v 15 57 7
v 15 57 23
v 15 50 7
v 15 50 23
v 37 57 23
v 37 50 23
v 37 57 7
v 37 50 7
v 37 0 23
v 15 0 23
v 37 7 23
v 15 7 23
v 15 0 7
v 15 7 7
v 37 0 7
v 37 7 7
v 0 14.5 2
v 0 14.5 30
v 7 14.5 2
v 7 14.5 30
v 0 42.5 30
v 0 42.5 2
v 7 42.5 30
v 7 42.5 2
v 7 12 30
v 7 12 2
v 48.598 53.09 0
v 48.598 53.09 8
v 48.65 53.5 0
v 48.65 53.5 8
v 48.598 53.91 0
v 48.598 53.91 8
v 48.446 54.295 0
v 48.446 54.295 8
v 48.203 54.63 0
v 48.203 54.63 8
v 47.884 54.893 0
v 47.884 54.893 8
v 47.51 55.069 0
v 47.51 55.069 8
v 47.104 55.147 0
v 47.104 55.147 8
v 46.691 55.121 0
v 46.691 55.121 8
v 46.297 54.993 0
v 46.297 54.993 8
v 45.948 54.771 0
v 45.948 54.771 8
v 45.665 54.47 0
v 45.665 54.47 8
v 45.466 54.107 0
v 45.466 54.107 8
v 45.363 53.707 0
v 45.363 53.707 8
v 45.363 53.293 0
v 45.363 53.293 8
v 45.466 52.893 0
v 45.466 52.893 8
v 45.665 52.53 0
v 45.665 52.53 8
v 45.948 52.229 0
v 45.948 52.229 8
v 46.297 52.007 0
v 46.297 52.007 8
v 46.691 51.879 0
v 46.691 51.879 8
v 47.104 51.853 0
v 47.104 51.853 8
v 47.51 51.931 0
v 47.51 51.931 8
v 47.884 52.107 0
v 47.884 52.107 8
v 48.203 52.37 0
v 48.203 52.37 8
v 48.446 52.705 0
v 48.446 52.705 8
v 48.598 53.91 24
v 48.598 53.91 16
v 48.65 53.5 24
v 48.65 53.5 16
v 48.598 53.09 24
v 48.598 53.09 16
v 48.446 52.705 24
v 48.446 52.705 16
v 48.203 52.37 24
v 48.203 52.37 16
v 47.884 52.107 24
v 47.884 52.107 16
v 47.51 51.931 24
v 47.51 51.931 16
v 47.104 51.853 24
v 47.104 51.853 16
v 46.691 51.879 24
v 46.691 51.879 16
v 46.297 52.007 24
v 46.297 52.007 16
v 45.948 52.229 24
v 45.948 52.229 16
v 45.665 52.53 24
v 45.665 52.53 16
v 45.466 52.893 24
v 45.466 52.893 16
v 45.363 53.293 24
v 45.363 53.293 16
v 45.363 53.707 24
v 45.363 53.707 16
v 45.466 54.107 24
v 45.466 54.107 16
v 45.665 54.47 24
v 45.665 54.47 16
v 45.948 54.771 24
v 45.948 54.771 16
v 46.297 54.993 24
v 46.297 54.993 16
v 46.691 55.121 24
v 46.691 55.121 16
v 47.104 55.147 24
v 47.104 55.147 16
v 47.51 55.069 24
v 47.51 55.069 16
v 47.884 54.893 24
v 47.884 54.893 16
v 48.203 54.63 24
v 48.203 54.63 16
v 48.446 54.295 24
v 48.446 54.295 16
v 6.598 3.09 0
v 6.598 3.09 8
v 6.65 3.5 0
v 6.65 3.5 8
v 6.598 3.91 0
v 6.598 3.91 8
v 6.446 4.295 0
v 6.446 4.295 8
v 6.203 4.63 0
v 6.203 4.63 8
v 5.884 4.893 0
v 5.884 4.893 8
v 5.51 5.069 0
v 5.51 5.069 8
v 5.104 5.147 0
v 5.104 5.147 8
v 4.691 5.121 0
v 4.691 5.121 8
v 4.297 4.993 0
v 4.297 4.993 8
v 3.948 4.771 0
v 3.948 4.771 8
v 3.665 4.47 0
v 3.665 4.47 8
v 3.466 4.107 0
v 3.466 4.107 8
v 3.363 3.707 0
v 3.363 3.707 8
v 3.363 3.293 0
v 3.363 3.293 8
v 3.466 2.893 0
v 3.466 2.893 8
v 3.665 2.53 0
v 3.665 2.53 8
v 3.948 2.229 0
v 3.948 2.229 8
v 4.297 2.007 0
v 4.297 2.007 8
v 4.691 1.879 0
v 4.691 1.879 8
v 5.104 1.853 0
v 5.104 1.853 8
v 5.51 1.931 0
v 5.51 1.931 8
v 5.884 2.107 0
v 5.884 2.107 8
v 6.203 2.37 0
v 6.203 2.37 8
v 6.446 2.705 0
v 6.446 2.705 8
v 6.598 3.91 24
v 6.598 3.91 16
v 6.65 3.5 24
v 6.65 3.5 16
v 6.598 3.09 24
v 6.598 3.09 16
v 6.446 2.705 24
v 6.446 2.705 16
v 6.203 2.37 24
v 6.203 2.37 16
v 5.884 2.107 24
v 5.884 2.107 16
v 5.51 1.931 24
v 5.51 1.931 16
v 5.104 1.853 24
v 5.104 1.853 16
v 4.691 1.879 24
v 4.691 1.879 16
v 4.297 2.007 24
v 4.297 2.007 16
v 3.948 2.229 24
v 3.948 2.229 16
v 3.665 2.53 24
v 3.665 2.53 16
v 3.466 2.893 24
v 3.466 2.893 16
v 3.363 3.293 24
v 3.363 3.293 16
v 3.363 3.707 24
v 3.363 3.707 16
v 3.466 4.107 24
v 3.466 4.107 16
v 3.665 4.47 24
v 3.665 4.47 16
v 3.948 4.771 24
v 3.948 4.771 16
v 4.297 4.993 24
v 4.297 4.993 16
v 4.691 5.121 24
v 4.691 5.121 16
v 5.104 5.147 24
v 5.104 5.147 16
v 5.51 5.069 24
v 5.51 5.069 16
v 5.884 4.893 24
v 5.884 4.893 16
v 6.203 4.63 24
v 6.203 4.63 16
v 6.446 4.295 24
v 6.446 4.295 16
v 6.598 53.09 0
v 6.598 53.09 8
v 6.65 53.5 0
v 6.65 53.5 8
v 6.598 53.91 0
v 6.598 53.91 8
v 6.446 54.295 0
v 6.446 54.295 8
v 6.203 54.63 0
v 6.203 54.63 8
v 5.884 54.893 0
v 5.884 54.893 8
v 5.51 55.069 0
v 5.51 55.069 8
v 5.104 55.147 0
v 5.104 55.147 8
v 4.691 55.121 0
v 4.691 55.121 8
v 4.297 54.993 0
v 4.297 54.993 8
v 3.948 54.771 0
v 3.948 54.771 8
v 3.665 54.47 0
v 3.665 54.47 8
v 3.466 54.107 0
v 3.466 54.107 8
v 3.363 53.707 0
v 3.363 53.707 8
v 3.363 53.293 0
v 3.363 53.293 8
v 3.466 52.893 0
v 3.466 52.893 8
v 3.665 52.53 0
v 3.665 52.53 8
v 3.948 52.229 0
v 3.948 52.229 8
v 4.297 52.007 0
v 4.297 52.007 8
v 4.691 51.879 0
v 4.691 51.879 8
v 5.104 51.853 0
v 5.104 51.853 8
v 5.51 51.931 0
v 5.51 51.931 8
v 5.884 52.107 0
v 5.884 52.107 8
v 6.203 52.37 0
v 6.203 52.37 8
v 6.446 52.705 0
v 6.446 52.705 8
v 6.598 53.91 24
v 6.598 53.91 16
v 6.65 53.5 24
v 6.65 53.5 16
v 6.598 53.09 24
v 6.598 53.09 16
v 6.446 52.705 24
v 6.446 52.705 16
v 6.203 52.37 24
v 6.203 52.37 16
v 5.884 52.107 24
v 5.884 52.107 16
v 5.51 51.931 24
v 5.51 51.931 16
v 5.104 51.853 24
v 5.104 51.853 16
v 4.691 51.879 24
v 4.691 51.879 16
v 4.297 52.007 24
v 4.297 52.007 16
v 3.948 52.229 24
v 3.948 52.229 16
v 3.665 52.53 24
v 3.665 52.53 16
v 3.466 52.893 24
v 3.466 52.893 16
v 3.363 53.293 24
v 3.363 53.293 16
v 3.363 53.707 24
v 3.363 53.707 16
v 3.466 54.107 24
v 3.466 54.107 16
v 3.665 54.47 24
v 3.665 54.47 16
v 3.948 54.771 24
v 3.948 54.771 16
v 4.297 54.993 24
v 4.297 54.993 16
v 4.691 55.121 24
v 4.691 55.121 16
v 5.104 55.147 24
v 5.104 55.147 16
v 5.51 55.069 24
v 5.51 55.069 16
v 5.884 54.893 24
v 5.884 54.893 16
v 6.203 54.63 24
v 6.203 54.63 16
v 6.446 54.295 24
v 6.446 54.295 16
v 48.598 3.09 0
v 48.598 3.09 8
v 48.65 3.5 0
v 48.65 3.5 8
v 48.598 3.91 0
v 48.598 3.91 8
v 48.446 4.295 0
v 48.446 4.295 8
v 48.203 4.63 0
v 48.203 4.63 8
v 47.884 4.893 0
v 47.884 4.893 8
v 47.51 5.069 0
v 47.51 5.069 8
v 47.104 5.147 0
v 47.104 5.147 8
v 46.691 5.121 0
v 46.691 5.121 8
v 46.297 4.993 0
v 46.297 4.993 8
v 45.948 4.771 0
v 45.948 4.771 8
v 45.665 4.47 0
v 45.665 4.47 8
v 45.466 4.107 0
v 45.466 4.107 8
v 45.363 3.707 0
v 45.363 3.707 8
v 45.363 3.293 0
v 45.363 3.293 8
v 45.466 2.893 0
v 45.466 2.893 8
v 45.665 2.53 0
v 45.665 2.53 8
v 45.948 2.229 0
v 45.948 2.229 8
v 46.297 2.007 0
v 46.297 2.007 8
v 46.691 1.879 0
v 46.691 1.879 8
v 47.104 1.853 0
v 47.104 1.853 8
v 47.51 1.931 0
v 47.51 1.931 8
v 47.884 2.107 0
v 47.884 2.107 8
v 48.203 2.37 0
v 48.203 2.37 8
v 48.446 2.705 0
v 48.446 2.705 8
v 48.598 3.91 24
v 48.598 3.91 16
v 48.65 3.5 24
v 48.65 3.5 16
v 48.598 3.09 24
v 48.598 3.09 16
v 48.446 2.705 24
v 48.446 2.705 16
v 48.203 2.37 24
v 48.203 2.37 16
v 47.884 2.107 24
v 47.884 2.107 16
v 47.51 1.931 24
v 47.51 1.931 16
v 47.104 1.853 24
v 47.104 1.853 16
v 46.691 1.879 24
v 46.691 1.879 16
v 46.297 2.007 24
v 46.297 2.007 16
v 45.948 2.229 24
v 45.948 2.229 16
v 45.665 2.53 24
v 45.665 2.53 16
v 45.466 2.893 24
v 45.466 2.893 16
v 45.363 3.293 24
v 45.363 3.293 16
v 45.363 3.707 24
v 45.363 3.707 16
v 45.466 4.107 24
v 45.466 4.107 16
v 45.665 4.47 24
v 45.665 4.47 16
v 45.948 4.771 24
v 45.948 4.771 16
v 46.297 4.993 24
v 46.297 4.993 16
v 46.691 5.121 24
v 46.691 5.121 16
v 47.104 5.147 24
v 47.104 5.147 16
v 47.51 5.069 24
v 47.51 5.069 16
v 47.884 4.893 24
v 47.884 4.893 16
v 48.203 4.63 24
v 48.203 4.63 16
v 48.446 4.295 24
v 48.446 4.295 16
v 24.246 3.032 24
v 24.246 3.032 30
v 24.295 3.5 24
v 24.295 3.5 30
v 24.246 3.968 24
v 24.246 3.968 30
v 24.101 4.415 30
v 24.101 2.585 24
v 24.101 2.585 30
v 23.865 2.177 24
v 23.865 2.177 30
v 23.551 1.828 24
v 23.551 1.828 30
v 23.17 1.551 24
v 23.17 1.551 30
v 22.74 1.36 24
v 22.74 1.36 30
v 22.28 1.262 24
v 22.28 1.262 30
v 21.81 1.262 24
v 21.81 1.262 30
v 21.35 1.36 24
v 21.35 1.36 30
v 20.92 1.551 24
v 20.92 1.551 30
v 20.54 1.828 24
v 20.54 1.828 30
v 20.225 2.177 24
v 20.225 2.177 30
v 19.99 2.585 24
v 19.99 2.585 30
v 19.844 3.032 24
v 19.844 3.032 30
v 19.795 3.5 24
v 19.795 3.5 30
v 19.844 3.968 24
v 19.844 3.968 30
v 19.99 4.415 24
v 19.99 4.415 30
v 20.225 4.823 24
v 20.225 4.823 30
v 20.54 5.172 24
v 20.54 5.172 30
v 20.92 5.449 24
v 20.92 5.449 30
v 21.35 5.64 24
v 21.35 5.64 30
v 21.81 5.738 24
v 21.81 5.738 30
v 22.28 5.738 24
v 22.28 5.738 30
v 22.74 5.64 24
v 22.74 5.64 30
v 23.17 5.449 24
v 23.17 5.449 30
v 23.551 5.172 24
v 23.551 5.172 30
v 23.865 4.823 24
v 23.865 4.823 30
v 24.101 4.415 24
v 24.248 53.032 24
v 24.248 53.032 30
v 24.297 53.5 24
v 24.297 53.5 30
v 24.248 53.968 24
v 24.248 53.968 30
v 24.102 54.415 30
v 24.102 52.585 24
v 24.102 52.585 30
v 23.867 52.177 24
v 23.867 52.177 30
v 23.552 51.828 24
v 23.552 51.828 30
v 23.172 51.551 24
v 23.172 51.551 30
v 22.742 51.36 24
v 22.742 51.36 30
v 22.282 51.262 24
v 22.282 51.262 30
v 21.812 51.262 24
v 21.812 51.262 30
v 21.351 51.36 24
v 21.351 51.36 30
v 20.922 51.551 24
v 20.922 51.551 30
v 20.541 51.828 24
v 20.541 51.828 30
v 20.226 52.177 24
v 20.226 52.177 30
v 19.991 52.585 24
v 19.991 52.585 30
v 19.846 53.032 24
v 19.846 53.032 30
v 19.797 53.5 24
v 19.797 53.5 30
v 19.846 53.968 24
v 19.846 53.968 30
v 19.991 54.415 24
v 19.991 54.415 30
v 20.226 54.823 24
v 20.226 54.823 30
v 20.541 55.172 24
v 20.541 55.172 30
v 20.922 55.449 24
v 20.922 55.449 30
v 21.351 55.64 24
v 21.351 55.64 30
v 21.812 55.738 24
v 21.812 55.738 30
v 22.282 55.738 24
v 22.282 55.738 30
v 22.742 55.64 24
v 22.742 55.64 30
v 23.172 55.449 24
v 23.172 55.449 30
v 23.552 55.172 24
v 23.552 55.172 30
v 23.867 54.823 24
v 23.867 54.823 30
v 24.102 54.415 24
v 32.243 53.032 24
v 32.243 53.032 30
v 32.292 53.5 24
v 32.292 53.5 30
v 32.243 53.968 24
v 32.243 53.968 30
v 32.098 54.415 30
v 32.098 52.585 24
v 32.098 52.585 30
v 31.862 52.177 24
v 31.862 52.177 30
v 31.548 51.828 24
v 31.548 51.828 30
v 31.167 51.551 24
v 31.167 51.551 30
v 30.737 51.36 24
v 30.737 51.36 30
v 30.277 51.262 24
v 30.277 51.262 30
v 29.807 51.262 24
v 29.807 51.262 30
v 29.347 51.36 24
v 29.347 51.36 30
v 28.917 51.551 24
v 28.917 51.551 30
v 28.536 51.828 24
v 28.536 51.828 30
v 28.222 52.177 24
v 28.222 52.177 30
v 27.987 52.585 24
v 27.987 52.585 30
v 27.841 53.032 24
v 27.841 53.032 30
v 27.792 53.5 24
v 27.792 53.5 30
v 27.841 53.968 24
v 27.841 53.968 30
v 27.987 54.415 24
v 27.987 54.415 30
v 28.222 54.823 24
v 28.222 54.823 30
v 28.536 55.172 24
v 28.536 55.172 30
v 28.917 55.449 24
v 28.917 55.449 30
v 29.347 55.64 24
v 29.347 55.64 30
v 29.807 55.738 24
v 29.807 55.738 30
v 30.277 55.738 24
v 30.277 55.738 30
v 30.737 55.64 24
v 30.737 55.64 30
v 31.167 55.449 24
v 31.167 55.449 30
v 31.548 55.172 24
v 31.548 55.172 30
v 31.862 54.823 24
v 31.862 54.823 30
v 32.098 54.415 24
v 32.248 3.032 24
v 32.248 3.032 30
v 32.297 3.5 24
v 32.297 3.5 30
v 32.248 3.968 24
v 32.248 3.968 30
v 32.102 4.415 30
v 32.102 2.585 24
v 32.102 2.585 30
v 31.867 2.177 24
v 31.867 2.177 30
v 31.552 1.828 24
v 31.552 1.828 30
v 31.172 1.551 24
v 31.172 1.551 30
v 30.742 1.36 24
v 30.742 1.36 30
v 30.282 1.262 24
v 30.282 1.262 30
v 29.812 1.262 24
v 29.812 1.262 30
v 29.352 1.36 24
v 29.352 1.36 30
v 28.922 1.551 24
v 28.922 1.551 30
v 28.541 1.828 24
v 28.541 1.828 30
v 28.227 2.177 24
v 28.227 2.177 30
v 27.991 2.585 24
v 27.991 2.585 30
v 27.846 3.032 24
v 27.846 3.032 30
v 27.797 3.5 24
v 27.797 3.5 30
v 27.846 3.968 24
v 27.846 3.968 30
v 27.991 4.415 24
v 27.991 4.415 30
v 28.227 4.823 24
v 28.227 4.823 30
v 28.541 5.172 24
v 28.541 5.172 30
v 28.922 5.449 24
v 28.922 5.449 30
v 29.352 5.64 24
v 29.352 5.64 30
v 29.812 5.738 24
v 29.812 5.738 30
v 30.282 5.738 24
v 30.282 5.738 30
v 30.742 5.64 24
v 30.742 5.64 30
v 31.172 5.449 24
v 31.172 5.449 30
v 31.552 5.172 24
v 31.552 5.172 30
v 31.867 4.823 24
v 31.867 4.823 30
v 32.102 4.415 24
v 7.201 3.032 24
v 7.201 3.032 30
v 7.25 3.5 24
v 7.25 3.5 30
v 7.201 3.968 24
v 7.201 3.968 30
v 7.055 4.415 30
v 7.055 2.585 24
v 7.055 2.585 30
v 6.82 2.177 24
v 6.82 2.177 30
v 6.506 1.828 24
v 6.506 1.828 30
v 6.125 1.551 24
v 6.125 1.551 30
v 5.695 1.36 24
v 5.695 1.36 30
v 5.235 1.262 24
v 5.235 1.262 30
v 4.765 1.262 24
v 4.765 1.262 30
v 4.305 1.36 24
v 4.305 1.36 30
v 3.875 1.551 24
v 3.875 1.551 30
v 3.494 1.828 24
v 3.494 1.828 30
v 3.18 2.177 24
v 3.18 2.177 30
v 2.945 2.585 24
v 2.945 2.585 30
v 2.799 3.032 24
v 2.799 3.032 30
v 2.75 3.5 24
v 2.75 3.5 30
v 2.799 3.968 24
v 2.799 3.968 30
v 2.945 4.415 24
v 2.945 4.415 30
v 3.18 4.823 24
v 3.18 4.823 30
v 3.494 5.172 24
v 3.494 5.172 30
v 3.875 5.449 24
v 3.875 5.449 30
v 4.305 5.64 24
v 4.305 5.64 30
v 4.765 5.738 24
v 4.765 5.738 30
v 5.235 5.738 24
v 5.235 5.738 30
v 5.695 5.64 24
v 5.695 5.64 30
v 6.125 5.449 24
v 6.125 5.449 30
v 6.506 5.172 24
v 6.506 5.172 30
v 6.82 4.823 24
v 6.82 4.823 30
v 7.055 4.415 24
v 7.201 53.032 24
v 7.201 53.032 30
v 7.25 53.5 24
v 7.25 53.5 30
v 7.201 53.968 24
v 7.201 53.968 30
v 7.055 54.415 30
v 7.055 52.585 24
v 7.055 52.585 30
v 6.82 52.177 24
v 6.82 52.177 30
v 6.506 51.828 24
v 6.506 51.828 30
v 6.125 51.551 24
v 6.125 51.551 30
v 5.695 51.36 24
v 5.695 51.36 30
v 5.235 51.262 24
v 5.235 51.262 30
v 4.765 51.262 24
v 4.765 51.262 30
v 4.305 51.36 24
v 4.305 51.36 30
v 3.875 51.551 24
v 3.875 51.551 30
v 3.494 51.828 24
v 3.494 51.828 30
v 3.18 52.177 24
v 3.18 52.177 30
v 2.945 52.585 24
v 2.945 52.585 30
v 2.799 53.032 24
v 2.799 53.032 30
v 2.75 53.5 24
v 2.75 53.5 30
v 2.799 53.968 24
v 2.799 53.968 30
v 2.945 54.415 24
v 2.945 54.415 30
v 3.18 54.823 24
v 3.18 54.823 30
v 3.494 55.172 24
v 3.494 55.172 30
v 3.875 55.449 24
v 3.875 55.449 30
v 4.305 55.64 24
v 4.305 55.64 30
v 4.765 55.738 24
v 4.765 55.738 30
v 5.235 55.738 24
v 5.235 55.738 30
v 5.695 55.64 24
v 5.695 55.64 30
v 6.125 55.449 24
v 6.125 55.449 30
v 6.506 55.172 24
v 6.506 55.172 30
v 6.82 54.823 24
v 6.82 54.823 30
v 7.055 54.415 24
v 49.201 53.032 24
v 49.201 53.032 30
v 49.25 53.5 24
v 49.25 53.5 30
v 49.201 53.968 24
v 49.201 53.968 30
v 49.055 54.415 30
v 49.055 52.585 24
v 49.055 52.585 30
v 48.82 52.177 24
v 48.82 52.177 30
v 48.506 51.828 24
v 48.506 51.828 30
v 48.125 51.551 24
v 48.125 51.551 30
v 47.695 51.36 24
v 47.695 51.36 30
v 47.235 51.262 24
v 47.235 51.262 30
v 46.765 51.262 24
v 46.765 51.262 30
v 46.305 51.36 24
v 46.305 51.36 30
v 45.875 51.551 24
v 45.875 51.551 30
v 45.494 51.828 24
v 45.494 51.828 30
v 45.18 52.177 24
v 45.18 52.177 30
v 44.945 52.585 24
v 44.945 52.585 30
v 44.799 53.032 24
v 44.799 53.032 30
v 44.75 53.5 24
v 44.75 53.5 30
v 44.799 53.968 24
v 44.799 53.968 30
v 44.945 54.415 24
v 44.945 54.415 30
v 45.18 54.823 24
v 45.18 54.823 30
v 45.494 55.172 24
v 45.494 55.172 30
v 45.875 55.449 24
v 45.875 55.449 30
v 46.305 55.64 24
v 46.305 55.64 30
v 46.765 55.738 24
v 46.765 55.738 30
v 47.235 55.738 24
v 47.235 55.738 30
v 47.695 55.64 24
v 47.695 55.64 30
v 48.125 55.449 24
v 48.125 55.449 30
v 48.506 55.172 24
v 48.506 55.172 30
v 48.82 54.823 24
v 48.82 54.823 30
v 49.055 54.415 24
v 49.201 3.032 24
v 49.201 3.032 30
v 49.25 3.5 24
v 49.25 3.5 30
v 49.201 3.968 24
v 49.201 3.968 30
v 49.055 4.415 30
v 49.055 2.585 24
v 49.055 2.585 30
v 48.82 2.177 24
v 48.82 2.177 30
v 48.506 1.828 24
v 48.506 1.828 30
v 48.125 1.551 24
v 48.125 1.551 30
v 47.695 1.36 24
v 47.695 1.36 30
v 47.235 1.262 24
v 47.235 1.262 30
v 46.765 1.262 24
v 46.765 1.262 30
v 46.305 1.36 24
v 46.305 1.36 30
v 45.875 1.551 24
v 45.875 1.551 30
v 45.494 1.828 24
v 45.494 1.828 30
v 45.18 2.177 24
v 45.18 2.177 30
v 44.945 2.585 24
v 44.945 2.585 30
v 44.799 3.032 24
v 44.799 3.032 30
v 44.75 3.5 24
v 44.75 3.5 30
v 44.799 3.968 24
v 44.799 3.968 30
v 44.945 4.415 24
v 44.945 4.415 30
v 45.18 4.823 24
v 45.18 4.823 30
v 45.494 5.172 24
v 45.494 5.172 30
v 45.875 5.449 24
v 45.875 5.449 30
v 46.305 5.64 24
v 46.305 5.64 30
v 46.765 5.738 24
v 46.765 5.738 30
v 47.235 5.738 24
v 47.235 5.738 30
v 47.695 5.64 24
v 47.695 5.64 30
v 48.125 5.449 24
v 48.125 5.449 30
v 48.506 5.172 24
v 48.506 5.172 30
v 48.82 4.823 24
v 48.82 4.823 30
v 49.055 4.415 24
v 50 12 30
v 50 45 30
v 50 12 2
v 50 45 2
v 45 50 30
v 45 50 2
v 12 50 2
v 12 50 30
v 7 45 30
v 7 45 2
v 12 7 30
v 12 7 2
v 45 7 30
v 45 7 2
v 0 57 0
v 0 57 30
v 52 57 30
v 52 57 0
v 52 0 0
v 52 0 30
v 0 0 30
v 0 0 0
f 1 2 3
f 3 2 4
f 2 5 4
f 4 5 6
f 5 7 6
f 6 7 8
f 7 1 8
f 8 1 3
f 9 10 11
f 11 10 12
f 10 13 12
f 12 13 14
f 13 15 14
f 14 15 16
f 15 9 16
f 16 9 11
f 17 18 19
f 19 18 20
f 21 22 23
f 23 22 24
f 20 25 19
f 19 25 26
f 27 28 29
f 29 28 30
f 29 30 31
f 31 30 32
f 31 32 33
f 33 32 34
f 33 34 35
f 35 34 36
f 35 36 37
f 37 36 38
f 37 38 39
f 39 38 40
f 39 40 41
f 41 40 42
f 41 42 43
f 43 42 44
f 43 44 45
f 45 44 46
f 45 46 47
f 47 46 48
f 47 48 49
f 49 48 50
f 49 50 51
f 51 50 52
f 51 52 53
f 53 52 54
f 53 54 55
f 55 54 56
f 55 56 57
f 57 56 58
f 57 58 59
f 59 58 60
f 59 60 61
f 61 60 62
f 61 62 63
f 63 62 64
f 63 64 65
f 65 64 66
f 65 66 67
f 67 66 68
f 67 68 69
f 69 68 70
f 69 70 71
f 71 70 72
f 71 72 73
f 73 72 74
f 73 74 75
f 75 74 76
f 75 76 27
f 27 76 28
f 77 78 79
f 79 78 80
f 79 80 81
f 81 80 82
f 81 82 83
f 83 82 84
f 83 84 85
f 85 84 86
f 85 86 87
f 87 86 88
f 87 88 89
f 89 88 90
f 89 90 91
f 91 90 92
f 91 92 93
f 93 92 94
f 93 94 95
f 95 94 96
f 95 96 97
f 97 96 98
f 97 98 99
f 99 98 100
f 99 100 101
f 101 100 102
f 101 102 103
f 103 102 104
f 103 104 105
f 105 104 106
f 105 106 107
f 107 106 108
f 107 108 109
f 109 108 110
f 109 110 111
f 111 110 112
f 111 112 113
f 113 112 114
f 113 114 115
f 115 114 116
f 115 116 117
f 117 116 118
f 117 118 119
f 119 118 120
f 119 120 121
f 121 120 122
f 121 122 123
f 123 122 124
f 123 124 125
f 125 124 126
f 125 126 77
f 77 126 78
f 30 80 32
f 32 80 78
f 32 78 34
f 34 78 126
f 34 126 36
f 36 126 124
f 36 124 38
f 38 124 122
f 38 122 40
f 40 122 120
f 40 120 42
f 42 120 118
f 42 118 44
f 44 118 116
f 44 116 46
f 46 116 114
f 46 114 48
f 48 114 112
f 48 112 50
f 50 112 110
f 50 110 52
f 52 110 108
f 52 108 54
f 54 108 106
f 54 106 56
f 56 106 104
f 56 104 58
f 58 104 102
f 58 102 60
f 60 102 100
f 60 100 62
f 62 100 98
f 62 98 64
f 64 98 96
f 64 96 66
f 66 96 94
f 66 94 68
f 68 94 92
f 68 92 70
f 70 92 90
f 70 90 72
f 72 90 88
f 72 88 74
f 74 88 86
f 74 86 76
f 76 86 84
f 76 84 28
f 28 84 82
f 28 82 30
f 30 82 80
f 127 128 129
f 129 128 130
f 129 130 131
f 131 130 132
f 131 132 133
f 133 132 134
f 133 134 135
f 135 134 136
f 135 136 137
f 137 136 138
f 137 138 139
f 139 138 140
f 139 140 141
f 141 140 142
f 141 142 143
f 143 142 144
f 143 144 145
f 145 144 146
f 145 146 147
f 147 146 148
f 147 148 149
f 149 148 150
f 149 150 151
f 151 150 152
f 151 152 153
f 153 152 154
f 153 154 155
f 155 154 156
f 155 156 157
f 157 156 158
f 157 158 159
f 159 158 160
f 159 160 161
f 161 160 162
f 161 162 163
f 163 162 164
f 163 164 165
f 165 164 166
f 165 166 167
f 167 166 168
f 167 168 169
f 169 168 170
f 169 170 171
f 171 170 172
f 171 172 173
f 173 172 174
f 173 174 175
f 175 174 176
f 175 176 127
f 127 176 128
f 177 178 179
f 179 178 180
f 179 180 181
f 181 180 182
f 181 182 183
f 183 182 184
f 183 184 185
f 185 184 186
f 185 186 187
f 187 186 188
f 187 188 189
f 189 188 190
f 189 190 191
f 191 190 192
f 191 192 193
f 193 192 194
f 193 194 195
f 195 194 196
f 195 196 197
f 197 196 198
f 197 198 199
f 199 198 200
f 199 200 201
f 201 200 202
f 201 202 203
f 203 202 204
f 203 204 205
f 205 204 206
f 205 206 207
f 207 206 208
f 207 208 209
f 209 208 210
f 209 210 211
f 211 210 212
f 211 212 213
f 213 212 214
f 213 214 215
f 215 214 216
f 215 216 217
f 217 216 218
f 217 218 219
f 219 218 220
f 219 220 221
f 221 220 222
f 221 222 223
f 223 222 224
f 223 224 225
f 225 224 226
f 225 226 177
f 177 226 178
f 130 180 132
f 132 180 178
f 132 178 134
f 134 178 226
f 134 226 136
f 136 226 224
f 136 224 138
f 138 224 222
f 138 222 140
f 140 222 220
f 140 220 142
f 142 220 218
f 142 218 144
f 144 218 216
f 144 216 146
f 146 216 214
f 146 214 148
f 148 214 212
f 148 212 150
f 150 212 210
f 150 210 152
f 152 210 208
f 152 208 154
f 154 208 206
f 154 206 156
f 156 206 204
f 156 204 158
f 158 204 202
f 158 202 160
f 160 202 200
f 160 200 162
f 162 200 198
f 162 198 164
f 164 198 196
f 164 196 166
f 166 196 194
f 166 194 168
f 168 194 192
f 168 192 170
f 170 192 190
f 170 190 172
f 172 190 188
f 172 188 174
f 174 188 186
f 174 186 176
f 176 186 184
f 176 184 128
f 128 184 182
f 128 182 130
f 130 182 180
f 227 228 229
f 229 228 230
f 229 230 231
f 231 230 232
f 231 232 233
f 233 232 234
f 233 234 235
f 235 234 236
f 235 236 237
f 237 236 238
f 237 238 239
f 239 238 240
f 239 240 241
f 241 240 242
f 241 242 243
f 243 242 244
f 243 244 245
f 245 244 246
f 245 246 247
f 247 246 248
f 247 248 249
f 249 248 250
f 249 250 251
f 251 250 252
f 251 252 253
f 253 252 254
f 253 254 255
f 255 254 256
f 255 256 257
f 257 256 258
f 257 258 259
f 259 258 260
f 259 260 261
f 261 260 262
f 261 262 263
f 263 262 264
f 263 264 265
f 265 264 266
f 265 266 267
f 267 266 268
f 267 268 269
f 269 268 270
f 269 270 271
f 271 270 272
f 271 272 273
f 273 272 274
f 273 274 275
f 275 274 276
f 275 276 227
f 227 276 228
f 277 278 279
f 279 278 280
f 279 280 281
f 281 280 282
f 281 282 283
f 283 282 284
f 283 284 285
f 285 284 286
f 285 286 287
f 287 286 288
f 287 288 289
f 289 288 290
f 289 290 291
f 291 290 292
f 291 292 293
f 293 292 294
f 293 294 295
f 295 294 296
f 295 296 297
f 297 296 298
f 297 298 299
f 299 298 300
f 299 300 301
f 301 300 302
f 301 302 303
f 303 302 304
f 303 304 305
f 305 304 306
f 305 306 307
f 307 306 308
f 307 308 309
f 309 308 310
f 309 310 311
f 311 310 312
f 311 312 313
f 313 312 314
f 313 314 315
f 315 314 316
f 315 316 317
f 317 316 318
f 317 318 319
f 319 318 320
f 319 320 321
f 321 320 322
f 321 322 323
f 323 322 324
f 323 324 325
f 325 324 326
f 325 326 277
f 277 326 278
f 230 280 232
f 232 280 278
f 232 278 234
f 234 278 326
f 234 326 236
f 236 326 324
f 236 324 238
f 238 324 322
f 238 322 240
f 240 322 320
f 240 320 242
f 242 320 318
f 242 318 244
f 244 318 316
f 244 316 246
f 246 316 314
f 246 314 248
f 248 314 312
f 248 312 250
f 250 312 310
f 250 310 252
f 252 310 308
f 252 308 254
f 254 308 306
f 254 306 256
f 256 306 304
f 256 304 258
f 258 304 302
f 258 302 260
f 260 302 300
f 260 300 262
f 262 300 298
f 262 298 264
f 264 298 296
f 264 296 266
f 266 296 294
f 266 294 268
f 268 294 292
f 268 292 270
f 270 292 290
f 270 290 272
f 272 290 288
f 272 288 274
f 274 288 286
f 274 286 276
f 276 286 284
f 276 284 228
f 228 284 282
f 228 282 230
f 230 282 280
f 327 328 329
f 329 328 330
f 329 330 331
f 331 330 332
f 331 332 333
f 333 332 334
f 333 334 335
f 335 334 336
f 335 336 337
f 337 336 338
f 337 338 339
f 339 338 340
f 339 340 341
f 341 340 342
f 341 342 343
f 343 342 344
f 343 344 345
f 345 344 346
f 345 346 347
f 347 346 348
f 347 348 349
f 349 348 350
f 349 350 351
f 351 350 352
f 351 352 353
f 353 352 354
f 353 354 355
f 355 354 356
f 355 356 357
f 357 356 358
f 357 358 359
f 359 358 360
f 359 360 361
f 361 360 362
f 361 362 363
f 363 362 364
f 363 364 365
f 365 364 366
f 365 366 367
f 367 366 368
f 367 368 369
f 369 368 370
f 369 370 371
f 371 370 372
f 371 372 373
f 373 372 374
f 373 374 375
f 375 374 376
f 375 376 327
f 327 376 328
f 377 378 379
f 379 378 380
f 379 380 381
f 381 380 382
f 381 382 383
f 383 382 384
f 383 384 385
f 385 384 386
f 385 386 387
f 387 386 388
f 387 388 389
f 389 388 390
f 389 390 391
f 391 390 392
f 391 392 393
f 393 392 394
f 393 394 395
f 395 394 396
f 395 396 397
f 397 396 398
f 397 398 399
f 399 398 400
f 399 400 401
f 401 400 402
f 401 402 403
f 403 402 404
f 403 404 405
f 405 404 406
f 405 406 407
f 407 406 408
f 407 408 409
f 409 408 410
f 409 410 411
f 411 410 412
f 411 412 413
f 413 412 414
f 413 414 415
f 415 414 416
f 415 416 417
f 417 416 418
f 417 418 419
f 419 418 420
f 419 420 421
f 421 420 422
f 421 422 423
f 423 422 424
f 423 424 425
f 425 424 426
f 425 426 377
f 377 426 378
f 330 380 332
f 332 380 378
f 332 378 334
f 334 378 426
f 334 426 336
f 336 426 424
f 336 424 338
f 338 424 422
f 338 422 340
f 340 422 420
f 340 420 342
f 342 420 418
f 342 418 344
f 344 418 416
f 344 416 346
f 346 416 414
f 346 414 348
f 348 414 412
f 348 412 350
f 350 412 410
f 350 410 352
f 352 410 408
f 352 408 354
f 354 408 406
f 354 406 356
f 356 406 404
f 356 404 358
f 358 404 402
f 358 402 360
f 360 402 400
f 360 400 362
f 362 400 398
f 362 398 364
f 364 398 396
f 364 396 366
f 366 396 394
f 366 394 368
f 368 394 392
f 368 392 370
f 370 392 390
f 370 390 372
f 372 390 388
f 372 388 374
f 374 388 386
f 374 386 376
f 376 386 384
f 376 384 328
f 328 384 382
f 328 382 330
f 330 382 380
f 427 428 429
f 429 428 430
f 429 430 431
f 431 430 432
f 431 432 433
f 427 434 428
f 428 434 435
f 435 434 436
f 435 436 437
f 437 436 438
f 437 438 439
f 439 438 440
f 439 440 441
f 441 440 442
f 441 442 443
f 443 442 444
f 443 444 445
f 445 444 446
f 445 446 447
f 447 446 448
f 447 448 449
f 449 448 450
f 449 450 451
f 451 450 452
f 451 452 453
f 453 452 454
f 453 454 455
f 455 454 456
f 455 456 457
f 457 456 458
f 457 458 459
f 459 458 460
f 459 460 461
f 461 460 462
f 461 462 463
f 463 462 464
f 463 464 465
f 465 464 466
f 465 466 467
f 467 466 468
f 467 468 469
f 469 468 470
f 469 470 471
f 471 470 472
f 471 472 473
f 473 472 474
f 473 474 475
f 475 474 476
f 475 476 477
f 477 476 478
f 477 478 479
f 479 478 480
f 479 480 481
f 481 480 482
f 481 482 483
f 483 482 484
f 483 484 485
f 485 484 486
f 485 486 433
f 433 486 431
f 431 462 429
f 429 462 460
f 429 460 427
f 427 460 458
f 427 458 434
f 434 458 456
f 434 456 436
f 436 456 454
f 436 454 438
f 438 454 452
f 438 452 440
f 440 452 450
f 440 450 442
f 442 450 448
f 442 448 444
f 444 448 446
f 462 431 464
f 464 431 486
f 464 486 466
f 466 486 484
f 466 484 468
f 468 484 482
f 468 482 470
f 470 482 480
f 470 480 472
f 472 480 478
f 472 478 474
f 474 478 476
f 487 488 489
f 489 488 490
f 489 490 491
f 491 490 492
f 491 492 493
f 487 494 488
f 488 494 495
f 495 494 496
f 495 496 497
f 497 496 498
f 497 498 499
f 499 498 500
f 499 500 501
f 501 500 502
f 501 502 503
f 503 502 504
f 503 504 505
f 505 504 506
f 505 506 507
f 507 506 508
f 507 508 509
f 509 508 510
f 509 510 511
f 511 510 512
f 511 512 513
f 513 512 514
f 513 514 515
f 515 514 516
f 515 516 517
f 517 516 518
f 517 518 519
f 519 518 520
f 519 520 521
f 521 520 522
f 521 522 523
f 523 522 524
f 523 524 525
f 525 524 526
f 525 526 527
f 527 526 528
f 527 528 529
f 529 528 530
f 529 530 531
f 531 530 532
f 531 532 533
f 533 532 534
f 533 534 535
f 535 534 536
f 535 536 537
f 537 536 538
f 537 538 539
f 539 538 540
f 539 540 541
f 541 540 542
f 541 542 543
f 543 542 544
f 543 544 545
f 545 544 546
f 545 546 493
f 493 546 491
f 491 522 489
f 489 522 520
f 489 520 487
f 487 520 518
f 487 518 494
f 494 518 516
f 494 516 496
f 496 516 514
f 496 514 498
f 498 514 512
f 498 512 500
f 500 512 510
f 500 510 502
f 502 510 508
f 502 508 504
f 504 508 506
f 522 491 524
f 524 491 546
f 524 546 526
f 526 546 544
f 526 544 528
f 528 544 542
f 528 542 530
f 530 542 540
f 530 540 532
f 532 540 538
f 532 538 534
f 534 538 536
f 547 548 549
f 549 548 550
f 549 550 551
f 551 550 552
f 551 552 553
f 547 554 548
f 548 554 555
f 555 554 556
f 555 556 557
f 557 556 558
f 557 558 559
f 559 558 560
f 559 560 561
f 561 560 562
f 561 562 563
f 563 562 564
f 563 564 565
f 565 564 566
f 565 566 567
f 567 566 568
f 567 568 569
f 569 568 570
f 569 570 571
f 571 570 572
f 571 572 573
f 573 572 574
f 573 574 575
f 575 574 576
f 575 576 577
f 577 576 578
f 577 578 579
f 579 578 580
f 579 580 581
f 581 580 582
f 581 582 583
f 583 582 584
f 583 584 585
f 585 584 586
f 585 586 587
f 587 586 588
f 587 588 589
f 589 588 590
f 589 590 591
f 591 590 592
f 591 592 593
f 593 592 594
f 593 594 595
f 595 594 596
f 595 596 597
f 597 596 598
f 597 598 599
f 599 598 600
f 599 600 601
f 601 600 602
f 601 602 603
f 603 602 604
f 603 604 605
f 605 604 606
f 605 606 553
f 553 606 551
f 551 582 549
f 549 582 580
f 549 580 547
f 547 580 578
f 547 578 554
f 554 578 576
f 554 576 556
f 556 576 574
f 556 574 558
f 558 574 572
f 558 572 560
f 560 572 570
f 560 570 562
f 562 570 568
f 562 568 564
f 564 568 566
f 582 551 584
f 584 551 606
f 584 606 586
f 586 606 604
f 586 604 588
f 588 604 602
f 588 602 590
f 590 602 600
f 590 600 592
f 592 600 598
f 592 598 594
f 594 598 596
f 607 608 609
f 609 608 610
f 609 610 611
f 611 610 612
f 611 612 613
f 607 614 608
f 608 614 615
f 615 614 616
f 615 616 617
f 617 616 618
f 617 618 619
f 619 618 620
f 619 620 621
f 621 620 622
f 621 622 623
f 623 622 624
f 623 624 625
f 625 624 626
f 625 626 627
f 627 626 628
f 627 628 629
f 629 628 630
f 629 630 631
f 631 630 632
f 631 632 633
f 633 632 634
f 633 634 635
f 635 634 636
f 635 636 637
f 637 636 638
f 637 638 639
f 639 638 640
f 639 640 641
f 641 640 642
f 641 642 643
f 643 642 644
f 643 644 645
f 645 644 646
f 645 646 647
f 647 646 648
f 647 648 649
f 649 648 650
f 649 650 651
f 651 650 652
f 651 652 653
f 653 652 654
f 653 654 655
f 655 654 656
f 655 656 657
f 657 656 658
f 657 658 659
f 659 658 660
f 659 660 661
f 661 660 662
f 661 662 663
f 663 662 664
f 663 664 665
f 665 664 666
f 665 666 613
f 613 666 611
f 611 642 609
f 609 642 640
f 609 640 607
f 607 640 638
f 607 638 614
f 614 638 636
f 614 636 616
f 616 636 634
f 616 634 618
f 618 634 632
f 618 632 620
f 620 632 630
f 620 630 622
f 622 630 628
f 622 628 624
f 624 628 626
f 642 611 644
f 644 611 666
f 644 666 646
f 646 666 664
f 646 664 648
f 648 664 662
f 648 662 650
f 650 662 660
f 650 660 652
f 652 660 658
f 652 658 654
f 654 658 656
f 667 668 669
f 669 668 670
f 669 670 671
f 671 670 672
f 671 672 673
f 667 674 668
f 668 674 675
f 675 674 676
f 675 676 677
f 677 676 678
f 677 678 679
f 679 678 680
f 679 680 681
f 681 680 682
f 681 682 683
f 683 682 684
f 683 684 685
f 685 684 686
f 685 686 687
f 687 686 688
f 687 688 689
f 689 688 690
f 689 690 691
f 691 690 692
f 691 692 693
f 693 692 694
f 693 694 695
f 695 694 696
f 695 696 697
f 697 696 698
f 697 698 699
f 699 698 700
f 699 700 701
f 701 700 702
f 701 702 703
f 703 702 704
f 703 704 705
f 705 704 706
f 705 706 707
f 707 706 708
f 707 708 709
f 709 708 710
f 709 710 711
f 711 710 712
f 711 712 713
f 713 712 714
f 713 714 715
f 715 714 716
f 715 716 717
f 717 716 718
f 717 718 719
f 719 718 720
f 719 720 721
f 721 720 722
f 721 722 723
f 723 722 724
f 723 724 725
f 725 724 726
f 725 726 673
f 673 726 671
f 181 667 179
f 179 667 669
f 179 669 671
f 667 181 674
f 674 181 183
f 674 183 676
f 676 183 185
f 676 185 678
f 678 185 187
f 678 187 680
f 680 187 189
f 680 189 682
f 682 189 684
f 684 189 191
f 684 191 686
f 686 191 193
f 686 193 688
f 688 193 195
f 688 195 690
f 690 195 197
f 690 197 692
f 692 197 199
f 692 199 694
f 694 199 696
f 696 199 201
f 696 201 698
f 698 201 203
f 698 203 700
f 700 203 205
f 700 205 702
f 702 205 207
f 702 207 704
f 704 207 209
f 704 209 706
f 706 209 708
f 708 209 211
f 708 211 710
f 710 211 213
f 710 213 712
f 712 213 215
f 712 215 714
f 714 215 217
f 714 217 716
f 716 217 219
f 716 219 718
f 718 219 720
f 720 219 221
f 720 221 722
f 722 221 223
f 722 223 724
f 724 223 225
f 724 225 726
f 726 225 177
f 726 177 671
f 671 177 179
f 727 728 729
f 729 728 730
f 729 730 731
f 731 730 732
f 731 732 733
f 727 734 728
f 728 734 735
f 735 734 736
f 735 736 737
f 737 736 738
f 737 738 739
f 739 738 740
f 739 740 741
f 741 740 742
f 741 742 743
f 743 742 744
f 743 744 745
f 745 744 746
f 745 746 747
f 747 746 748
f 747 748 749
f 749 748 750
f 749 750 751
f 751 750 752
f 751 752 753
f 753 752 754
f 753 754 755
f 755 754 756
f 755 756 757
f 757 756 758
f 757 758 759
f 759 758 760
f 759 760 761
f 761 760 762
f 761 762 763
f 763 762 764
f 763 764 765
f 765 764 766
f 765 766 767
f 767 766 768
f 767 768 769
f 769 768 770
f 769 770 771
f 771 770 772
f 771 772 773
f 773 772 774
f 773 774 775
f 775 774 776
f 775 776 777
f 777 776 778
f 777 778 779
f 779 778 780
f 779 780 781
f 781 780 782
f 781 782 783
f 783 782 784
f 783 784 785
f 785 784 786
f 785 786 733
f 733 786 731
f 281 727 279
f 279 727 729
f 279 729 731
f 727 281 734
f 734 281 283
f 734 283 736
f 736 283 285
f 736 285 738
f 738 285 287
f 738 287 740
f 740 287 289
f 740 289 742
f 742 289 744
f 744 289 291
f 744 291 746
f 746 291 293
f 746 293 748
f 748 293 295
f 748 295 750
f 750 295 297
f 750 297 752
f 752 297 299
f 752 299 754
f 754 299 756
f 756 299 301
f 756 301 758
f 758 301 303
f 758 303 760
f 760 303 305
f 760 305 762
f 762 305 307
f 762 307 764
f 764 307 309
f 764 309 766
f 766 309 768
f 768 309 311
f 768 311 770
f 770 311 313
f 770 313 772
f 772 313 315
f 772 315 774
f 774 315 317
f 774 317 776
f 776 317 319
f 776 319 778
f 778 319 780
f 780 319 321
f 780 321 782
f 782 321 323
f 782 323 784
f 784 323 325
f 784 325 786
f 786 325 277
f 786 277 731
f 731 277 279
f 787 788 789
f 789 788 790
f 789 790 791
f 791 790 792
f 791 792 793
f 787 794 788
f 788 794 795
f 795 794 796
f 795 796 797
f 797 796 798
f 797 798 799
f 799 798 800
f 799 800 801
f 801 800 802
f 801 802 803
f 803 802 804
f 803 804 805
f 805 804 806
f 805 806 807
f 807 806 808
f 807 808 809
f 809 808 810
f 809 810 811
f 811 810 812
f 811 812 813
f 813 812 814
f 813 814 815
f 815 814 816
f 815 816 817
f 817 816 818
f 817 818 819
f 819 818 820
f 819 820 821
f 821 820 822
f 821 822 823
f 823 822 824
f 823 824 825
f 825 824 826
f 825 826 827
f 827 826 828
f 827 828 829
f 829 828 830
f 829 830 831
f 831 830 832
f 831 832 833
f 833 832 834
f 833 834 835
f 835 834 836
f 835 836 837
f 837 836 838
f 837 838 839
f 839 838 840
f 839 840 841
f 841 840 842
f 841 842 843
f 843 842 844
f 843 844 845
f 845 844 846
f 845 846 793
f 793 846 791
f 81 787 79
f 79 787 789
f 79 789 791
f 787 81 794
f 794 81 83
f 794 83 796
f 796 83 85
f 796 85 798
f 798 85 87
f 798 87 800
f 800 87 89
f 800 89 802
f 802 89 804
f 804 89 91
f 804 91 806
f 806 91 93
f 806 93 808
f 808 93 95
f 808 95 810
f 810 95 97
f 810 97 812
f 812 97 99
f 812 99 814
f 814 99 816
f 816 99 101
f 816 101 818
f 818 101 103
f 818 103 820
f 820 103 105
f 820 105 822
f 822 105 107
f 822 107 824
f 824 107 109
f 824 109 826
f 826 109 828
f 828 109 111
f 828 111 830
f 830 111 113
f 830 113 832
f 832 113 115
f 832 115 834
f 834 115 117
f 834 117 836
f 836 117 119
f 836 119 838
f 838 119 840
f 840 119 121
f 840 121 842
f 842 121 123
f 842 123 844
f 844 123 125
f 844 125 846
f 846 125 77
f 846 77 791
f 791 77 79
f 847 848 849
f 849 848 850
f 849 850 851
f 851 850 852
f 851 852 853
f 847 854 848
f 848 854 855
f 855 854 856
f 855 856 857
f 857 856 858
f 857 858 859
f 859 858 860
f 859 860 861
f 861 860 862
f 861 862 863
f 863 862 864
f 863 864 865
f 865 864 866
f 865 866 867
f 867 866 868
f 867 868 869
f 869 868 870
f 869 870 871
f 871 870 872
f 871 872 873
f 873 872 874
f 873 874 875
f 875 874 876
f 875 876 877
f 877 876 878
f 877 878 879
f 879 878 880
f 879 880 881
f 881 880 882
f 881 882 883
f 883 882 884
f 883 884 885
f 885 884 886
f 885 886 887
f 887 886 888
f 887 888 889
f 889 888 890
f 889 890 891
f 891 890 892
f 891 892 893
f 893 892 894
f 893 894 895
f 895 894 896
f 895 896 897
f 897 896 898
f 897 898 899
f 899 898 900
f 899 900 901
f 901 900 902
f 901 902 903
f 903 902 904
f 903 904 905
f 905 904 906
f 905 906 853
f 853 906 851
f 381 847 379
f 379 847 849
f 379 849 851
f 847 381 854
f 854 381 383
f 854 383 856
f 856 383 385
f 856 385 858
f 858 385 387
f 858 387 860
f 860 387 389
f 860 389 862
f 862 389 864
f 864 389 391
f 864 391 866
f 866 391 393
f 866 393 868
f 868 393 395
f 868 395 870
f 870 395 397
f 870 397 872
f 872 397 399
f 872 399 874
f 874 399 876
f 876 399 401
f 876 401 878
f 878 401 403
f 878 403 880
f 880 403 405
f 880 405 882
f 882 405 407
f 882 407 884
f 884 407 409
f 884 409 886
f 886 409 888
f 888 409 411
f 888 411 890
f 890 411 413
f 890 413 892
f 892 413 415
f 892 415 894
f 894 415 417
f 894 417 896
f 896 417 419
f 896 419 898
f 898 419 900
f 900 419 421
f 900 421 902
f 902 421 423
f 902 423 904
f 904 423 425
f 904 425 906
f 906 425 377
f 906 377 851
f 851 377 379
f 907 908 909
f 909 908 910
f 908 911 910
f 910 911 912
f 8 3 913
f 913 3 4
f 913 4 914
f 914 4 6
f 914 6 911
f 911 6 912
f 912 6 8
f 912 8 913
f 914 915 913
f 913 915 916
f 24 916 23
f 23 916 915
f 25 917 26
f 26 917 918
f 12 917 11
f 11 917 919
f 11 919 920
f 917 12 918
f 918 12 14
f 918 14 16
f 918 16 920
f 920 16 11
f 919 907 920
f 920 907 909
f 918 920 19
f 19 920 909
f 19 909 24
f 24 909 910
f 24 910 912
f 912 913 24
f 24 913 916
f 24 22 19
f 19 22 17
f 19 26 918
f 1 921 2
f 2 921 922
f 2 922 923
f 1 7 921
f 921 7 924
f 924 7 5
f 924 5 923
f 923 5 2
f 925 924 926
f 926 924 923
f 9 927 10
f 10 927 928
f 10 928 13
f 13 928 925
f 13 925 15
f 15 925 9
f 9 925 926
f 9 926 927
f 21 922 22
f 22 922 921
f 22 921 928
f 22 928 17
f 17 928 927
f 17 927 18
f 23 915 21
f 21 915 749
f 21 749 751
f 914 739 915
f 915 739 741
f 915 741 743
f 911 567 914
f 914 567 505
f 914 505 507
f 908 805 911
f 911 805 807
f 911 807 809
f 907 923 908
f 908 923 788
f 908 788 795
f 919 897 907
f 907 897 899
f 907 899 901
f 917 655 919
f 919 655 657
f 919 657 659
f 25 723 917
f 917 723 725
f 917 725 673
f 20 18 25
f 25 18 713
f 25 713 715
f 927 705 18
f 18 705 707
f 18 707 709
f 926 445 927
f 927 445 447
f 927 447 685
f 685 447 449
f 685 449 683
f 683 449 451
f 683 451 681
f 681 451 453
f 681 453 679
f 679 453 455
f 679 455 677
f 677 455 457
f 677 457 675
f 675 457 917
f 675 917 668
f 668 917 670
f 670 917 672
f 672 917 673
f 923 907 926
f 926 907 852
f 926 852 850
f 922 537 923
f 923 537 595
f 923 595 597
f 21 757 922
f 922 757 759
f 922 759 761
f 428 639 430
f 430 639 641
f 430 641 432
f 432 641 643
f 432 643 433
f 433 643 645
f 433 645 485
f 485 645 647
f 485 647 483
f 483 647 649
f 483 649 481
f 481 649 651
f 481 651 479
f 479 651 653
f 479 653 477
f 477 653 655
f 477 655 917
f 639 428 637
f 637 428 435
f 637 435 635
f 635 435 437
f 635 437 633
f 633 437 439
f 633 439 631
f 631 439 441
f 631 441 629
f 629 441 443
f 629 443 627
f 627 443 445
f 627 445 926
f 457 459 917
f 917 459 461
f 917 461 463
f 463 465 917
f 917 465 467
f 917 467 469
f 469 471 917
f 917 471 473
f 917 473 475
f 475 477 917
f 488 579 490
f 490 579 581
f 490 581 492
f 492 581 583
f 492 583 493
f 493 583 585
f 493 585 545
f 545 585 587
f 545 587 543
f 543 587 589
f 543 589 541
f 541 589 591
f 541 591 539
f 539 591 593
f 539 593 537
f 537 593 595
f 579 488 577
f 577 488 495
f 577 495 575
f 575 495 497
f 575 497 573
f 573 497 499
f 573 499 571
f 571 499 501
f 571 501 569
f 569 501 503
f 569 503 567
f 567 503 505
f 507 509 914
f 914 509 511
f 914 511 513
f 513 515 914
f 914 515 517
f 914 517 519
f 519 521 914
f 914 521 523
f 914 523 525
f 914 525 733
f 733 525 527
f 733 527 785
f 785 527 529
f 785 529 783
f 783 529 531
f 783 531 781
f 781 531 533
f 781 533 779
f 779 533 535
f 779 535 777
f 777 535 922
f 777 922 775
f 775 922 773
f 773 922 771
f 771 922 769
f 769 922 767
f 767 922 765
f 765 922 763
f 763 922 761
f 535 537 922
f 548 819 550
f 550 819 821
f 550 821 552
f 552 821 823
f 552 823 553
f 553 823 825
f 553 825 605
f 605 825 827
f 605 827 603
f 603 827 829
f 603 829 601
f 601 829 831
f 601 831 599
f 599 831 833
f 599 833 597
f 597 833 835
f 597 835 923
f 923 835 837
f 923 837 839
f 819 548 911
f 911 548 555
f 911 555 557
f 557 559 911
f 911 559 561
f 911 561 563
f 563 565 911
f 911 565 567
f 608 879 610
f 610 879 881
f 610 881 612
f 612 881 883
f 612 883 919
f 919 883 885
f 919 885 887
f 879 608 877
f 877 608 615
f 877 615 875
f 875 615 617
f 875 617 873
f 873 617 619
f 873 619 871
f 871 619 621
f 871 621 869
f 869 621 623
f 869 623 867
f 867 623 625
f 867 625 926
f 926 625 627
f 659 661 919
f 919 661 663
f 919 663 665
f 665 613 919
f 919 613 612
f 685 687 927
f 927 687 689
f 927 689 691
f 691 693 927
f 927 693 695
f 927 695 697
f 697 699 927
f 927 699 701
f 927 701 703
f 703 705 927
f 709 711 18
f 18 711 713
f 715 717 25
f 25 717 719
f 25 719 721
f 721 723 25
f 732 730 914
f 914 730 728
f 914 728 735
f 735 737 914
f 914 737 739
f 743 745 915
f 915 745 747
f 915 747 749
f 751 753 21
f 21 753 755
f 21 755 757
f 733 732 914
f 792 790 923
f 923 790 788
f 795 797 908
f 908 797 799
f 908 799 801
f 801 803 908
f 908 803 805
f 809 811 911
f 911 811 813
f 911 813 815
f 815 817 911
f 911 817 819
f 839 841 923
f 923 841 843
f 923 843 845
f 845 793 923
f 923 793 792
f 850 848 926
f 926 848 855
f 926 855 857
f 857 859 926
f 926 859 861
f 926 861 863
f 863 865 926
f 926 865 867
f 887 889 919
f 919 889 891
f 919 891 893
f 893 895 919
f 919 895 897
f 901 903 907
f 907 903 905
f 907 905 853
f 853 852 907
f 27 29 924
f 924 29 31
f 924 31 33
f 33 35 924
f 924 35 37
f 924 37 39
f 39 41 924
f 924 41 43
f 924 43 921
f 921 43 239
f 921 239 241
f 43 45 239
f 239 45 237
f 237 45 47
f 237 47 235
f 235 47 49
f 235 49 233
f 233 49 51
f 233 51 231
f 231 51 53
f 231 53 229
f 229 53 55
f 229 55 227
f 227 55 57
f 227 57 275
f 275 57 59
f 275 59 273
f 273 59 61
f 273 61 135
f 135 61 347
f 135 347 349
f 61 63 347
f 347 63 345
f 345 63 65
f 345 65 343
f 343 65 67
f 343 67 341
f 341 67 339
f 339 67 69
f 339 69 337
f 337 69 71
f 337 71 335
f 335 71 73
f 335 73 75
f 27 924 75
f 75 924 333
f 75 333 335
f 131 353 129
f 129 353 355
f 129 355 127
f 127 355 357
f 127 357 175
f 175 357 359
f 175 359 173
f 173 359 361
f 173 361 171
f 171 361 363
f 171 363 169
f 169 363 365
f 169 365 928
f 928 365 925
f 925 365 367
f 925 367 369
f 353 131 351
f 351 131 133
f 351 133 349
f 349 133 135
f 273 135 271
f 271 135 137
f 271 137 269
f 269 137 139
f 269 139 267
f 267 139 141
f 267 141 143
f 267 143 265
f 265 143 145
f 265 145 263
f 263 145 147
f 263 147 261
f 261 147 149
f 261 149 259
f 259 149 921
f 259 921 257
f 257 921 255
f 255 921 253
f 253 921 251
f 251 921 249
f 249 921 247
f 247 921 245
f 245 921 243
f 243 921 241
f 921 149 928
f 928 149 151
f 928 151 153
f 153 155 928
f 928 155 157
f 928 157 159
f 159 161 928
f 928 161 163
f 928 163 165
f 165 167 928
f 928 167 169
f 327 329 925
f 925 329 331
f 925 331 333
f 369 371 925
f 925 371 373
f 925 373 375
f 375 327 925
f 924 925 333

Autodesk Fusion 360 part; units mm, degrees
sketch "スケッチ1" plane through (0, 0, 0) normal (0, 0, 1) x (1, 0, 0)
  line L0 (0, 0) -> (52, 0)
  line L1 (52, 0) -> (52, 57)
  line L2 (52, 57) -> (0, 57)
  line L3 (0, 57) -> (0, 0)
  dimension "d1" = 57
extrude "押し出し1" add sketch "スケッチ1" along normal blind 30
sketch "スケッチ2" plane through (0, 0, 30) normal (0, 0, 1) x (-1, 0, 0)
  line L0 (0, -57) -> (0, 0)
  line L1 (0, 0) -> (-52, 0)
  line L2 (-52, 0) -> (-52, -57)
  line L3 (-52, -57) -> (0, -57)
  line L4 (-45, -7) -> (-45, -50)
  line L5 (-45, -50) -> (-7, -50)
  line L6 (-7, -50) -> (-7, -7)
  line L7 (-12, -7) -> (-45, -7)
  line L8 (-45, -7) -> (-50, -7)
  line L9 (-50, -12) -> (-50, -50)
  line L10 (-50, -50) -> (-45, -50)
  line L11 (-45, -50) -> (-45, -7)
  line L12 (-7, -7) -> (-45, -7)
  line L13 (-50, -7) -> (-50, -45)
  line L14 (-45, -50) -> (-12, -50)
  line L15 (-7, -45) -> (-7, -12)
  line L16 (-7, -45) -> (-12, -50)
  line L17 (-45, -50) -> (-50, -45)
  line L18 (-45, -7) -> (-50, -12)
  line L19 (-12, -7) -> (-7, -12)
  point P0 (-7, -50)
  dimension "d5" = 5
  dimension "d6" = 5
  dimension "d7" = 5
  dimension "d8" = 5
  dimension "d9" = 5
  dimension "d10" = 5
  dimension "d11" = 5
  dimension "d12" = 5
extrude "押し出し2" cut sketch "スケッチ2" against normal blind 28 contours L4 L5 L6 L7 L11 L12 L14 L15 L16 L19 | L4 L9 L11 L13 L17 L18
sketch "スケッチ3" plane through (0, 0, 30) normal (0, 0, 1) x (-1, 0, 0)
  line L0 (-50, -45) -> (-50, -12)
  line L1 (-50, -12) -> (-45, -7)
  line L2 (-45, -7) -> (-12, -7)
  line L3 (-12, -7) -> (-7, -12)
  line L4 (-7, -12) -> (-7, -45)
  line L5 (-7, -45) -> (-12, -50)
  line L6 (-12, -50) -> (-45, -50)
  line L7 (-45, -50) -> (-50, -45)
  line L8 (0, -57) -> (0, 0)
  line L9 (0, 0) -> (-52, 0)
  line L10 (-52, 0) -> (-52, -57)
  line L11 (-52, -57) -> (0, -57)
  line L12 (0, -57) -> (-26.0227, -57)
  line L13 (-26.0227, -57) -> (-26.0227, -53.5)
  line L14 (-26.0227, -53.5) -> (0, -53.5)
  line L15 (0, -53.5) -> (0, -57)
  line L16 (-26.0227, -53.5) -> (-52, -53.5)
  line L17 (-52, -53.5) -> (-52, -57)
  line L18 (-52, -57) -> (-26.0227, -57)
  line L19 (-26.0227, -57) -> (-26.0227, -53.5)
  line L20 (0, 0) -> (-26.0083, 0)
  line L21 (-26.0083, 0) -> (-26.0083, -3.5)
  line L22 (-26.0083, -3.5) -> (0, -3.5)
  line L23 (0, -3.5) -> (0, 0)
  line L24 (-26.0083, 0) -> (-52, 0)
  line L25 (-52, 0) -> (-52, -3.5)
  line L26 (-52, -3.5) -> (-26.0083, -3.5)
  line L27 (-26.0083, -3.5) -> (-26.0083, 0)
  line L28 (0, -57) -> (-5, -57)
  line L29 (-5, -57) -> (-5, -53.5)
  line L30 (-5, -53.5) -> (0, -53.5)
  line L31 (0, -53.5) -> (0, -57)
  line L32 (-52, -57) -> (-47, -57)
  line L33 (-47, -57) -> (-47, -53.5)
  line L34 (-47, -53.5) -> (-52, -53.5)
  line L35 (-52, -53.5) -> (-52, -57)
  line L36 (0, 0) -> (-5, 0)
  line L37 (-5, 0) -> (-5, -3.5)
  line L38 (-5, -3.5) -> (0, -3.5)
  line L39 (0, -3.5) -> (0, 0)
  line L40 (-52, 0) -> (-47, 0)
  line L41 (-47, 0) -> (-47, -3.5)
  line L42 (-47, -3.5) -> (-52, -3.5)
  line L43 (-52, -3.5) -> (-52, 0)
  line L44 (-26.0227, -53.5) -> (-30.042, -53.5)
  line L45 (-30.042, -53.5) -> (-30.042, -57)
  line L46 (-30.042, -57) -> (-26.0227, -57)
  line L47 (-26.0227, -57) -> (-26.0227, -53.5)
  line L48 (-26.0227, -53.5) -> (-22.0467, -53.5)
  line L49 (-22.0467, -53.5) -> (-22.0467, -57)
  line L50 (-22.0467, -57) -> (-26.0227, -57)
  line L51 (-26.0227, -57) -> (-26.0227, -53.5)
  line L52 (-26.0083, 0) -> (-30.0469, 0)
  line L53 (-30.0469, 0) -> (-30.0469, -3.5)
  line L54 (-30.0469, -3.5) -> (-26.0083, -3.5)
  line L55 (-26.0083, -3.5) -> (-26.0083, 0)
  line L56 (-26.0083, 0) -> (-22.0451, 0)
  line L57 (-22.0451, 0) -> (-22.0451, -3.5)
  line L58 (-22.0451, -3.5) -> (-26.0083, -3.5)
  line L59 (-26.0083, -3.5) -> (-26.0083, 0)
  circle A0 centre (-5, -53.5) radius 2.25
  circle A1 centre (-22.0467, -53.5) radius 2.25
  circle A2 centre (-30.042, -53.5) radius 2.25
  circle A3 centre (-47, -53.5) radius 2.25
  circle A4 centre (-5, -3.5) radius 2.25
  circle A5 centre (-22.0451, -3.5) radius 2.25
  circle A6 centre (-30.0469, -3.5) radius 2.25
  circle A7 centre (-47, -3.5) radius 2.25
  dimension "d15" = 3.5
  dimension "d16" = 3.5
  dimension "d17" = 3.5
  dimension "d18" = 4.5
  dimension "d19" = 4.5
  dimension "d20" = 4.5
  dimension "d21" = 4.5
  dimension "d22" = 4.5
  dimension "d23" = 4.5
  dimension "d24" = 4.5
  dimension "d25" = 4.5
extrude "押し出し3" cut sketch "スケッチ3" against normal blind 6 contours L14 L29 L30 A0 | L14 L30 A0 | L14 L29 A0 | L22 L38 A4 | L22 L37 L38 A4 | L14 L48 L49 A1 | L14 L49 A1 | L22 L37 A4 | L14 L48 A1 | L22 L58 A5 | L22 L57 A5 | L16 L45 A2 | L16 L44 L45 A2 | L16 L44 A2 | L22 L57 L58 A5 | L16 L33 L34 A3 | L16 L33 A3 | L16 L34 A3 | L26 L53 L54 A6 | L26 L53 A6 | L26 L54 A6 | L26 L41 A7 | L26 L41 L42 A7 | L26 L42 A7
sketch "スケッチ4" plane through (0, 0, 24) normal (0, 0, 1) x (-1, 0, 0)
  circle A0 centre (-5, -53.5) radius 2.25
  circle A1 centre (-5, -53.5) radius 1.65
  circle A2 centre (-5, -3.5) radius 1.65
  circle A3 centre (-47, -3.5) radius 1.65
  circle A4 centre (-47, -53.5) radius 1.65
  dimension "d28" = 3.3
  dimension "d29" = 3.3
  dimension "d30" = 3.3
  dimension "d31" = 3.3
extrude "押し出し4" cut sketch "スケッチ4" against normal blind 24 contours A1 | A2 | A3 | A4
sketch "スケッチ5" plane through (0, 0, 0) normal (-1, 0, 0) x (0, -1, 0)
  line L0 (-57, 0) -> (0, 0)
  line L1 (0, 0) -> (0, 30)
  line L2 (0, 30) -> (-57, 30)
  line L3 (-57, 30) -> (-57, 0)
  line L4 (-57, 0) -> (-28.5, 0)
  line L5 (-28.5, 0) -> (-28.5, 2)
  line L6 (-28.5, 2) -> (-57, 2)
  line L7 (-57, 2) -> (-57, 0)
  line L8 (-28.5, 2) -> (-14.5, 2)
  line L9 (-14.5, 2) -> (-14.5, 30)
  line L10 (-14.5, 30) -> (-28.5, 30)
  line L11 (-28.5, 30) -> (-28.5, 2)
  line L12 (-28.5, 2) -> (-42.5, 2)
  line L13 (-42.5, 2) -> (-42.5, 30)
  line L14 (-42.5, 30) -> (-28.5, 30)
  line L15 (-28.5, 30) -> (-28.5, 2)
  dimension "d34" = 28.5
  dimension "d35" = 2
  dimension "d36" = 14
  dimension "d37" = 28
  dimension "d38" = 14
  dimension "d39" = 28
extrude "押し出し5" cut sketch "スケッチ5" against normal blind 7 contours L2 L8 L9 L10 L11 L15 | L2 L6 L11 L12 L13 L14 L15
sketch "スケッチ6" plane through (0, 0, 0) normal (0, -1, 0) x (1, 0, 0)
  line L0 (0, 0) -> (52, 0)
  line L1 (52, 0) -> (52, 30)
  line L2 (52, 30) -> (0, 30)
  line L3 (0, 30) -> (0, 0)
  line L4 (0, 30) -> (15, 30)
  line L5 (15, 30) -> (15, 0)
  line L6 (15, 0) -> (0, 0)
  line L7 (0, 0) -> (0, 30)
  line L8 (52, 0) -> (37, 0)
  line L9 (37, 0) -> (37, 30)
  line L10 (37, 30) -> (52, 30)
  line L11 (52, 30) -> (52, 0)
  line L12 (0, 30) -> (52, 30)
  line L13 (52, 30) -> (52, 23)
  line L14 (52, 23) -> (0, 23)
  line L15 (0, 23) -> (0, 30)
  line L16 (0, 0) -> (52, 0)
  line L17 (52, 0) -> (52, 7)
  line L18 (52, 7) -> (0, 7)
  line L19 (0, 7) -> (0, 0)
  dimension "d42" = 15
  dimension "d43" = 30
  dimension "d44" = 15
  dimension "d45" = 30
  dimension "d46" = 7
  dimension "d47" = 7
extrude "押し出し6" cut sketch "スケッチ6" against normal blind 7 contours L5 L9 L14 L18
sketch "スケッチ7" plane through (0, 57, 0) normal (0, 1, 0) x (-1, 0, 0)
  line L0 (-52, 0) -> (0, 0)
  line L1 (0, 0) -> (0, 30)
  line L2 (0, 30) -> (-52, 30)
  line L3 (-52, 30) -> (-52, 0)
  line L4 (-52, 0) -> (-37, 0)
  line L5 (-37, 0) -> (-37, 30)
  line L6 (-37, 30) -> (-52, 30)
  line L7 (-52, 30) -> (-52, 0)
  line L8 (0, 0) -> (-15, 0)
  line L9 (-15, 0) -> (-15, 30)
  line L10 (-15, 30) -> (0, 30)
  line L11 (0, 30) -> (0, 0)
  line L12 (-52, 30) -> (0, 30)
  line L13 (0, 30) -> (0, 23)
  line L14 (0, 23) -> (-52, 23)
  line L15 (-52, 23) -> (-52, 30)
  line L16 (-52, 0) -> (0, 0)
  line L17 (0, 0) -> (0, 7)
  line L18 (0, 7) -> (-52, 7)
  line L19 (-52, 7) -> (-52, 0)
  dimension "d50" = 15
  dimension "d51" = 30
  dimension "d52" = 15
  dimension "d53" = 30
  dimension "d54" = 7
  dimension "d55" = 7
extrude "押し出し7" cut sketch "スケッチ7" against normal blind 7 contours L5 L9 L14 L18
equation "d6 = d5"
equation "d8 = d7"
equation "d10 = d9"
equation "d12 = d11"
